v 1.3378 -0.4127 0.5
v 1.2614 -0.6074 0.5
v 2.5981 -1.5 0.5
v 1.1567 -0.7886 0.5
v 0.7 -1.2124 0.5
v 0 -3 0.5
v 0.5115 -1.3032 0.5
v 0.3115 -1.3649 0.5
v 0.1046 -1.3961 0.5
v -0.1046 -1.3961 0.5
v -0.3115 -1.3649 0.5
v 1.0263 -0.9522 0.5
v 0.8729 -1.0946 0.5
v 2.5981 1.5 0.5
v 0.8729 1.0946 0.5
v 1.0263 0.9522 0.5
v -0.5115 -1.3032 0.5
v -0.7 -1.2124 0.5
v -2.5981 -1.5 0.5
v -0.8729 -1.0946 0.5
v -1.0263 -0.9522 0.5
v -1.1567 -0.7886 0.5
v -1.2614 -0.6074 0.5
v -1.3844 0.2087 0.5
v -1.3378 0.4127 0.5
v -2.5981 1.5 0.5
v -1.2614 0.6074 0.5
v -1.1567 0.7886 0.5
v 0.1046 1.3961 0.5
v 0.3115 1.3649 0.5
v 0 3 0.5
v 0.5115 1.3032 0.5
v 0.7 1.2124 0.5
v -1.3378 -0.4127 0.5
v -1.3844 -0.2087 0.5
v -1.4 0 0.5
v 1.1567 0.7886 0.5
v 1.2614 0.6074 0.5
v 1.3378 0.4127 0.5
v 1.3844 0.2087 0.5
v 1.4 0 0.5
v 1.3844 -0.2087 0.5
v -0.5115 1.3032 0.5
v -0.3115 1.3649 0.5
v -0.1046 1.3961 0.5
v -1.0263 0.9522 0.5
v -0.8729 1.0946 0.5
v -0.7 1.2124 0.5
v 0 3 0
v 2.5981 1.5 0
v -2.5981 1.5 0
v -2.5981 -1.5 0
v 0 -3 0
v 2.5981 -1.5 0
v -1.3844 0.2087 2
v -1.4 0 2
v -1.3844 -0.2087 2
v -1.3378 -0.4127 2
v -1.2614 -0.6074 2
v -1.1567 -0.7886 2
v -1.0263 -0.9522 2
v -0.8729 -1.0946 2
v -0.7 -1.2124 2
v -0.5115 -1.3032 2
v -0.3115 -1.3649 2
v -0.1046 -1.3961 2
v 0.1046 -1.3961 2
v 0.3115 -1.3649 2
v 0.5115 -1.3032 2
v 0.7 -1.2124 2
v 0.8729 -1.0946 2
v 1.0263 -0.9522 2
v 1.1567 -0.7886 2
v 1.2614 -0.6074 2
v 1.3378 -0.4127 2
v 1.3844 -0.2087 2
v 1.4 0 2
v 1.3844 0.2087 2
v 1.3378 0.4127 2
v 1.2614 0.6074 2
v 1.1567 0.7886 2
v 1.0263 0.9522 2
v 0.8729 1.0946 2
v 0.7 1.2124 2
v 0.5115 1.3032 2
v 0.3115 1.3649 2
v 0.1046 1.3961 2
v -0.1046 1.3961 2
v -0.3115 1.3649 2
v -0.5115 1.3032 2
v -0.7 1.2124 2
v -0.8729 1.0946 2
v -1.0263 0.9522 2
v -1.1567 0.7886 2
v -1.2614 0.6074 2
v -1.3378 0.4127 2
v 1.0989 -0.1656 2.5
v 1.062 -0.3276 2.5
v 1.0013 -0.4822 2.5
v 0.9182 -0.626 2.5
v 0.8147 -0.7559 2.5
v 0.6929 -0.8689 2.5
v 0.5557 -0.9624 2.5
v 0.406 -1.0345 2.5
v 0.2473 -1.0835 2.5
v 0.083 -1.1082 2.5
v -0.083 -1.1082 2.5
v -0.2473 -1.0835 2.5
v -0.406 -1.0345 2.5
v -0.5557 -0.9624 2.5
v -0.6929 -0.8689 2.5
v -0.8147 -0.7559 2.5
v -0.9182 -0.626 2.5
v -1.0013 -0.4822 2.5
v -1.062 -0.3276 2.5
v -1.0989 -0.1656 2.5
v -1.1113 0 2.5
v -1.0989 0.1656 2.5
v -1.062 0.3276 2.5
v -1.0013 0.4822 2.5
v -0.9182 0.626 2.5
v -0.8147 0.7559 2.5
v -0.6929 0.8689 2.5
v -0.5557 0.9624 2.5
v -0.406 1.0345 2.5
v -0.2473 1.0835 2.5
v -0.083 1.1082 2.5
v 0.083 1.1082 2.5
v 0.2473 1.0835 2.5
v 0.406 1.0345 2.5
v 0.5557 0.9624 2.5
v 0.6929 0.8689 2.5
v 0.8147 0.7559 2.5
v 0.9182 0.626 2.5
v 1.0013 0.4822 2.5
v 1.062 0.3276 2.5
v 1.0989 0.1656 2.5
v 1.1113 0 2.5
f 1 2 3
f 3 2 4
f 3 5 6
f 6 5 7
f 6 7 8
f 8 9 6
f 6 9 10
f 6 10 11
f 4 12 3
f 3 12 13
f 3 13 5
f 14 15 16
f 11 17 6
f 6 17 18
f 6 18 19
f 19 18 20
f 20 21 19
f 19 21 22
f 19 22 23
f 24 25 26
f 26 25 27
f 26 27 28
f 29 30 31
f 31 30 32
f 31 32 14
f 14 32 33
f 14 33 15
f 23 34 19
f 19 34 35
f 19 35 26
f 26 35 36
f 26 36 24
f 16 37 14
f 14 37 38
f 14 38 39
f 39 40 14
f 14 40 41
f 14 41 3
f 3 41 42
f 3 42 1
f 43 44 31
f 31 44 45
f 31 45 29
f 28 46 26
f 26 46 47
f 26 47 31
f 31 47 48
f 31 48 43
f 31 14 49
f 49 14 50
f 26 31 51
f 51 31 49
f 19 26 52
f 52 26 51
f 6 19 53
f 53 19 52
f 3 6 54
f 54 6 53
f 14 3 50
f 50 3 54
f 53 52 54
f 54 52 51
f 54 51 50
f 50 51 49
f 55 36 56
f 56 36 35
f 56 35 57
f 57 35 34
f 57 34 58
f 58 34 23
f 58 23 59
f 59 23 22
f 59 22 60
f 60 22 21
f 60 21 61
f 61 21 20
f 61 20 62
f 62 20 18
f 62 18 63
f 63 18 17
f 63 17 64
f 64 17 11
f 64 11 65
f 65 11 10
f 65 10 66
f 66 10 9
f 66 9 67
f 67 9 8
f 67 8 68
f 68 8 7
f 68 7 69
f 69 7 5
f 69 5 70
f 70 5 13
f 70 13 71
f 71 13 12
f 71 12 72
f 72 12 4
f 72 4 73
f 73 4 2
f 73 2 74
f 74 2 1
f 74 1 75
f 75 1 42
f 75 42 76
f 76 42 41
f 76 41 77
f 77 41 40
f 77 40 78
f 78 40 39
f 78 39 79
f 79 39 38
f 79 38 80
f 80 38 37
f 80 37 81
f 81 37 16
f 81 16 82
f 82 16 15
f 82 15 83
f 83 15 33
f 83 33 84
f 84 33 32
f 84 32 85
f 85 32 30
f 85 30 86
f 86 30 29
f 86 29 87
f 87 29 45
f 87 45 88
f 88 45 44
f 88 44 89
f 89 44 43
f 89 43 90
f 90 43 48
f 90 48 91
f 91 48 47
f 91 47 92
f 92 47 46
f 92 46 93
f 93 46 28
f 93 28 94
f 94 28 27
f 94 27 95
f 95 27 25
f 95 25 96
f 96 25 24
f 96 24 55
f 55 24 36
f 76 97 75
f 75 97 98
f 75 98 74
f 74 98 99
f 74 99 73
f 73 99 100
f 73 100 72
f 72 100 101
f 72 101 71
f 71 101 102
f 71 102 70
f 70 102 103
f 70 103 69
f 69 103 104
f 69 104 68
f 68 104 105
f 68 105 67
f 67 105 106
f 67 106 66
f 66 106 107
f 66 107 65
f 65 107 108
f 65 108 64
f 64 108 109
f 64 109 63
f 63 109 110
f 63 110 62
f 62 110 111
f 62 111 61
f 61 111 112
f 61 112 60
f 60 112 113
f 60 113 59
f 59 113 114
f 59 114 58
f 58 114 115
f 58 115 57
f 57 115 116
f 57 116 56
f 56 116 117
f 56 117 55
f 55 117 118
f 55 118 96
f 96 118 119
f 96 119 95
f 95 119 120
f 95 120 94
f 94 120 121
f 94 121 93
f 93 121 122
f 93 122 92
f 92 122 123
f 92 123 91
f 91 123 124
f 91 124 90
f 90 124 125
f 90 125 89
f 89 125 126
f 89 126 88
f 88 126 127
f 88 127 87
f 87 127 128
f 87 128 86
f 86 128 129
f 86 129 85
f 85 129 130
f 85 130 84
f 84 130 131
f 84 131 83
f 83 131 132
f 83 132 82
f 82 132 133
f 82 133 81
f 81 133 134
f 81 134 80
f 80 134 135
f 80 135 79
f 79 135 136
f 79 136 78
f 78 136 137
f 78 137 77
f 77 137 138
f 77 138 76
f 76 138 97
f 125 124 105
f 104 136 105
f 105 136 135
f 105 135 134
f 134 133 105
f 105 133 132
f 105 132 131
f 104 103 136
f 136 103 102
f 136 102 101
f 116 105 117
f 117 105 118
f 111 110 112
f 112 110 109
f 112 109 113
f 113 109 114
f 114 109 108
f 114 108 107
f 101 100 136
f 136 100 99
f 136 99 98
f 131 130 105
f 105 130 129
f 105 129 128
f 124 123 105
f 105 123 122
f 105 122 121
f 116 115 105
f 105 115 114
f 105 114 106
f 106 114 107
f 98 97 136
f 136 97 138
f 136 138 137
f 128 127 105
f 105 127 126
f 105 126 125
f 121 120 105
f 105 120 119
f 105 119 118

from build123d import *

# Parameters (mm, degrees)
BOSS_EXTRUDE1_DEPTH = 0.5
SKETCH2_R           = 1.4
BOSS_EXTRUDE2_DEPTH = 1.5
SKETCH3_R           = 1.4
BOSS_EXTRUDE3_DEPTH = 0.5
BOSS_EXTRUDE3_TAPER = 30


with BuildPart() as part:
    # Sketch1 → Boss-Extrude1 (new body)
    with BuildSketch(Plane.XY):
        Polygon((0, 3), (-2.598076211, 1.5), (-2.598076211, -1.5), (0, -3), (2.598076211, -1.5), (2.598076211, 1.5), align=None)
    extrude(amount=BOSS_EXTRUDE1_DEPTH)

    # Sketch2 → Boss-Extrude2 (add)
    with BuildSketch(Plane.XY.offset(0.5)):
        Circle(SKETCH2_R)
    extrude(amount=BOSS_EXTRUDE2_DEPTH)

    # Sketch3 → Boss-Extrude3 (add)
    with BuildSketch(Plane.XY.offset(2)):
        Circle(SKETCH3_R)
    extrude(amount=BOSS_EXTRUDE3_DEPTH, taper=BOSS_EXTRUDE3_TAPER)


solid = part.part
